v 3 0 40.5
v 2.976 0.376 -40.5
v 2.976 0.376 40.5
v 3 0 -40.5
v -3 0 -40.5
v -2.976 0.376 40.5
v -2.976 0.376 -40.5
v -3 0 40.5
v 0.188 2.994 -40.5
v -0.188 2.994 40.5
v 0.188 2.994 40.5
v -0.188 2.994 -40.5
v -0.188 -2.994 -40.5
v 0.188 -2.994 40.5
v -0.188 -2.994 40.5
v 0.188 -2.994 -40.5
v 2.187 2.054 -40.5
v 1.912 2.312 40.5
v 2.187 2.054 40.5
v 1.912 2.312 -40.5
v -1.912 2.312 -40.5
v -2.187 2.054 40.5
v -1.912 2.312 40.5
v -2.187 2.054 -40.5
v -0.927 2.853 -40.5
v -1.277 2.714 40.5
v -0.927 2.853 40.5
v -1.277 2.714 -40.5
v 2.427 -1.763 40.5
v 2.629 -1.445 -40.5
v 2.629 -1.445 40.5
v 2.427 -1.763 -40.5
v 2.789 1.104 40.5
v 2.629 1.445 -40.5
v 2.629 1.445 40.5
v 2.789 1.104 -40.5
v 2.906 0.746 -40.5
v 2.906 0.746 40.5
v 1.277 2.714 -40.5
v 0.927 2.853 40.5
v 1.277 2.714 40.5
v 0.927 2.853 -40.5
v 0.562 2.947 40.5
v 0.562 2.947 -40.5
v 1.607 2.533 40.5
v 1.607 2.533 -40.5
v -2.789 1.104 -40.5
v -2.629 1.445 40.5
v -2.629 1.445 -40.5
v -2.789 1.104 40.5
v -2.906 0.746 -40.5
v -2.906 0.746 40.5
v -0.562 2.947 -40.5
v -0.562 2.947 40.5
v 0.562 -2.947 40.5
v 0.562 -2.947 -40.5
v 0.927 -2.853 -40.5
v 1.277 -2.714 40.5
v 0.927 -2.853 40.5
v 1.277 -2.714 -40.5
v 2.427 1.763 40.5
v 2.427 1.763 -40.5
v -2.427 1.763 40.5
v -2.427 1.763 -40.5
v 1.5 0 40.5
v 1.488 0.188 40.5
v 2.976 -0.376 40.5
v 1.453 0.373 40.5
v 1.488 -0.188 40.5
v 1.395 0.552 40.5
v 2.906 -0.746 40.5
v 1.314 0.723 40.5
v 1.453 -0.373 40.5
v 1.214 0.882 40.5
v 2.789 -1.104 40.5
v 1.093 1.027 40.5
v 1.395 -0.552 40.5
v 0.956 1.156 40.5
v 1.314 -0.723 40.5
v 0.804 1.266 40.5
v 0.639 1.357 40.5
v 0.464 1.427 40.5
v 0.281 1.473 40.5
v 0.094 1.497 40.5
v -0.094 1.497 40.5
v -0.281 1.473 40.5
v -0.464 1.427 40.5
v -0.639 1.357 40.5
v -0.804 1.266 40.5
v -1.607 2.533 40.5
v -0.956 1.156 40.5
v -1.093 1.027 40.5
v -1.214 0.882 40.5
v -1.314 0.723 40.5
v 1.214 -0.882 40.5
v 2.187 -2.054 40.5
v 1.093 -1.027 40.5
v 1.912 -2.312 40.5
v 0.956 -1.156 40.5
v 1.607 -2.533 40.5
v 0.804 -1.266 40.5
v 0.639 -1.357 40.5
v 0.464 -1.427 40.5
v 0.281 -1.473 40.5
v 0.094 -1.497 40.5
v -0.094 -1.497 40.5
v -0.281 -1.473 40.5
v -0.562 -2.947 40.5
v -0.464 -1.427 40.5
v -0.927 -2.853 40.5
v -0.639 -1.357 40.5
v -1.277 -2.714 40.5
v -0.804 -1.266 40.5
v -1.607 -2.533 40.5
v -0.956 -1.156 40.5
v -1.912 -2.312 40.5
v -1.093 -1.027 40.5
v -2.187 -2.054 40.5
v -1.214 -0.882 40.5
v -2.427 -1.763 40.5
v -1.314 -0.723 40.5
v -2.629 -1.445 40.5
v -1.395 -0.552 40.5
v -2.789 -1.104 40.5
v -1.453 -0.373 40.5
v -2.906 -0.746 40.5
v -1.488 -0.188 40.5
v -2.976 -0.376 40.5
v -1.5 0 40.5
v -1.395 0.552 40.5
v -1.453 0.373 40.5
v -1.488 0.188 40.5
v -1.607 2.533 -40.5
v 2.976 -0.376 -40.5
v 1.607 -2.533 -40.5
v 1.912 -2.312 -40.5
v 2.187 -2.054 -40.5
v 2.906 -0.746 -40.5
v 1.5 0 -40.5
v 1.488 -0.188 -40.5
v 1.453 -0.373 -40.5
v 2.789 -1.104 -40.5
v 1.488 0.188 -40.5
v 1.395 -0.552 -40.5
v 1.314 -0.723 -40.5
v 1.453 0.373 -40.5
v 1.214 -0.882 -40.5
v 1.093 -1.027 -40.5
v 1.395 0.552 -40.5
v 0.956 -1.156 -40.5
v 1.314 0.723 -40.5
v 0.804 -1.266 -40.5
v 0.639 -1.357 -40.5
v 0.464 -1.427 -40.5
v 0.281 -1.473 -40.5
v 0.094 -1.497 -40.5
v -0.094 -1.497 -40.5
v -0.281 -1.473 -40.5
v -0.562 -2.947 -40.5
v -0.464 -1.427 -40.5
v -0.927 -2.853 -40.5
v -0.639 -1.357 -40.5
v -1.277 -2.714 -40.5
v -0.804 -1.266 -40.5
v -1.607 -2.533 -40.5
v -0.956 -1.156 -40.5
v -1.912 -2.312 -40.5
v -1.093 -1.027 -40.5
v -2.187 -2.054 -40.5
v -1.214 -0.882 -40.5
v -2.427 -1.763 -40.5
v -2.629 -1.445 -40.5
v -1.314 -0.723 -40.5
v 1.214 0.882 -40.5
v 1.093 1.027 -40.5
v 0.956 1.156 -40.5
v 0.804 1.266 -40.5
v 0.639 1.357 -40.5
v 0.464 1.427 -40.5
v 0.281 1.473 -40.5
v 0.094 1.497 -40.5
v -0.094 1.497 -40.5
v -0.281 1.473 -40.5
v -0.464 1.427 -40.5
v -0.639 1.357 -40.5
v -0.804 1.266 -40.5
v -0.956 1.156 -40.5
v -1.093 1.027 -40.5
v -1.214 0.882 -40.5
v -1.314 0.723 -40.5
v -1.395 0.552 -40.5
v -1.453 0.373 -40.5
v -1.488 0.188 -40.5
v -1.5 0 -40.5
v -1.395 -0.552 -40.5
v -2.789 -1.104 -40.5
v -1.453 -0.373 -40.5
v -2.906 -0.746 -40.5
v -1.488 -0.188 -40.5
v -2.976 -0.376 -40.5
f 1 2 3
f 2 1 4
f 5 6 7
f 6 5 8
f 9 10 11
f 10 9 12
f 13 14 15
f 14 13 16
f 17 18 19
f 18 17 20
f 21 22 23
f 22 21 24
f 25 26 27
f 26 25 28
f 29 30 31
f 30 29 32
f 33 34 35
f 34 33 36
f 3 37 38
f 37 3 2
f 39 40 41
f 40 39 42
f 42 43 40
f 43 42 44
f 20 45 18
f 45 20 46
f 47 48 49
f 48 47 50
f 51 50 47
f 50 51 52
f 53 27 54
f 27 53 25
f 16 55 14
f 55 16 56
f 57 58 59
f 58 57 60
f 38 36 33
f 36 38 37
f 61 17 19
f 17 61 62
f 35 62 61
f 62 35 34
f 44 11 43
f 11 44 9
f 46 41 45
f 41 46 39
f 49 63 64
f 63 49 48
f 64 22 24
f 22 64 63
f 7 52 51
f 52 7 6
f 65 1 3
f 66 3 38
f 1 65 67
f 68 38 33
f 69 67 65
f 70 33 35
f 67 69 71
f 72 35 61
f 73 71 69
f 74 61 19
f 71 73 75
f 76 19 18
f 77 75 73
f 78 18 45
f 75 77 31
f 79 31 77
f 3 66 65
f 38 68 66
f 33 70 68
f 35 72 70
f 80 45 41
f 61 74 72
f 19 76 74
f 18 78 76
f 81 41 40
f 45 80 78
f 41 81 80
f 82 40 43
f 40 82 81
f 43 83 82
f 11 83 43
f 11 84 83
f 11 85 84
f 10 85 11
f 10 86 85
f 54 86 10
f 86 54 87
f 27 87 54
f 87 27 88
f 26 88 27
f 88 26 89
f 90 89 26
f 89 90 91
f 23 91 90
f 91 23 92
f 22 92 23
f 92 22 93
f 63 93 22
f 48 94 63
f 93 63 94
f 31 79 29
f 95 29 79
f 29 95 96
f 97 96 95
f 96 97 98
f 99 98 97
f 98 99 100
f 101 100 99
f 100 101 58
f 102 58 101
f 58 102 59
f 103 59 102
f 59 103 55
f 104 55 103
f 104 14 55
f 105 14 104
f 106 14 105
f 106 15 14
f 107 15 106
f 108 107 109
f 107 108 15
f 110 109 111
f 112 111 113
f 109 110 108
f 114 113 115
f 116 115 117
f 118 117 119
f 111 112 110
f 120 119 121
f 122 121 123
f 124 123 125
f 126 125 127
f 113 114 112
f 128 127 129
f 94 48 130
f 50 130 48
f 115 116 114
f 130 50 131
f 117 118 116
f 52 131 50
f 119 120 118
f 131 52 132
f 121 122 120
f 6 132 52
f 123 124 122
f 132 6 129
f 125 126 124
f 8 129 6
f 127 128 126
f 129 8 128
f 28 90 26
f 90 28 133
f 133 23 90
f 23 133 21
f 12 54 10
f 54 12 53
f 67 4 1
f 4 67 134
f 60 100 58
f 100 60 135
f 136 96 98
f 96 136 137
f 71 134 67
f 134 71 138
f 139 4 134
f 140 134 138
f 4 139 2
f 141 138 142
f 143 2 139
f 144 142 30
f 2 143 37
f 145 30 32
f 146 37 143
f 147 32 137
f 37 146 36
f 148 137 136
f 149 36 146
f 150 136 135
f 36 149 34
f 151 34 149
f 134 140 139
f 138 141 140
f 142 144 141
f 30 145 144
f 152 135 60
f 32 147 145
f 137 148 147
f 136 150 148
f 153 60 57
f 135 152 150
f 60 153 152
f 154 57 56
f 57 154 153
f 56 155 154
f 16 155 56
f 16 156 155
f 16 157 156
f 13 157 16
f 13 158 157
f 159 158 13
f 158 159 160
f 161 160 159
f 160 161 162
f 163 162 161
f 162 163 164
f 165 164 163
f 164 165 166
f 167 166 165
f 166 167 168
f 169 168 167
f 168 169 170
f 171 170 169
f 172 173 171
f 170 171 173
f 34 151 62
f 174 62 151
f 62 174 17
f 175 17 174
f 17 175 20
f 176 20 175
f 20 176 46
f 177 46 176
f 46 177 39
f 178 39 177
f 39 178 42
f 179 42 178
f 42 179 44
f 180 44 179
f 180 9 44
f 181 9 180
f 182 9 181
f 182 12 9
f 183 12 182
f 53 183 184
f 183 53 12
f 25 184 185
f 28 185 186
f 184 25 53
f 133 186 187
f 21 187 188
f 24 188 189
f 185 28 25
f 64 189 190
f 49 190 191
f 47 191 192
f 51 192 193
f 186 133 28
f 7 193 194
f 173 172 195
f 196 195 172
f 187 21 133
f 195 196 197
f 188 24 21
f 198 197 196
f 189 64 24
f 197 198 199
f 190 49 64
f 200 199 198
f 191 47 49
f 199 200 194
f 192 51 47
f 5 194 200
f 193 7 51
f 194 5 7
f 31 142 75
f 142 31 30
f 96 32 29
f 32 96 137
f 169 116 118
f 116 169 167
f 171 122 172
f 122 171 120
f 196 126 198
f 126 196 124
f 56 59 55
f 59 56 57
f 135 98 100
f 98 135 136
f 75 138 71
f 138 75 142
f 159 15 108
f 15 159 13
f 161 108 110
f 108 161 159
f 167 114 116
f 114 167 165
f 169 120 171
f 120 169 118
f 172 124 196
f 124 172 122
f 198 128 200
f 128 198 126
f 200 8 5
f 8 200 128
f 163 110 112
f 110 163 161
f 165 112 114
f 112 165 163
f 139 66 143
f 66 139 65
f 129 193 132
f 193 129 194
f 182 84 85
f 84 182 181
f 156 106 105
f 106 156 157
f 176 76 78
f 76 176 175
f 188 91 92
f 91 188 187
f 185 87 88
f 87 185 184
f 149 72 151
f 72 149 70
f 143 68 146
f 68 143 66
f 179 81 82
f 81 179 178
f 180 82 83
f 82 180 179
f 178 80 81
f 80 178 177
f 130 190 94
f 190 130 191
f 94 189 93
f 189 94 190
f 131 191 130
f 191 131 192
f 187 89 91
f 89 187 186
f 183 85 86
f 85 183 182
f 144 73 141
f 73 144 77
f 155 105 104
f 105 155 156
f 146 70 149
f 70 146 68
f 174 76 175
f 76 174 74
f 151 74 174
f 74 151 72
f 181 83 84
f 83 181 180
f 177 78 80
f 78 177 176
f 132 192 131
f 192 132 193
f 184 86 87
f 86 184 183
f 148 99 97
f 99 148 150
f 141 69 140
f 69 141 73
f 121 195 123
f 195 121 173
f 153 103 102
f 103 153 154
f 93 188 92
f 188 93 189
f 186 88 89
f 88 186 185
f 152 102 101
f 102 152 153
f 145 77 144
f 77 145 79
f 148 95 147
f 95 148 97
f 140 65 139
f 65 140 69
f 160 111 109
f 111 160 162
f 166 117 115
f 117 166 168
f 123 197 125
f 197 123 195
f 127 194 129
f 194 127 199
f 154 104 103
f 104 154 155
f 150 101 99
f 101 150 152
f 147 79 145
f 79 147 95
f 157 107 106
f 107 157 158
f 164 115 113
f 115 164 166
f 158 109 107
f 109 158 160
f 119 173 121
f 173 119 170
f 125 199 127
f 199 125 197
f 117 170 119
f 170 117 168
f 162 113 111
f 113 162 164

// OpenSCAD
$fn = 50;


difference() {
	union() {
		translate(v = [0, 0, -40.5000000000]) {
			cylinder(h = 81, r = 3.0000000000);
		}
	}
	union() {
		translate(v = [0, 0, -100.0000000000]) {
			cylinder(h = 200, r = 1.5000000000);
		}
	}
}
